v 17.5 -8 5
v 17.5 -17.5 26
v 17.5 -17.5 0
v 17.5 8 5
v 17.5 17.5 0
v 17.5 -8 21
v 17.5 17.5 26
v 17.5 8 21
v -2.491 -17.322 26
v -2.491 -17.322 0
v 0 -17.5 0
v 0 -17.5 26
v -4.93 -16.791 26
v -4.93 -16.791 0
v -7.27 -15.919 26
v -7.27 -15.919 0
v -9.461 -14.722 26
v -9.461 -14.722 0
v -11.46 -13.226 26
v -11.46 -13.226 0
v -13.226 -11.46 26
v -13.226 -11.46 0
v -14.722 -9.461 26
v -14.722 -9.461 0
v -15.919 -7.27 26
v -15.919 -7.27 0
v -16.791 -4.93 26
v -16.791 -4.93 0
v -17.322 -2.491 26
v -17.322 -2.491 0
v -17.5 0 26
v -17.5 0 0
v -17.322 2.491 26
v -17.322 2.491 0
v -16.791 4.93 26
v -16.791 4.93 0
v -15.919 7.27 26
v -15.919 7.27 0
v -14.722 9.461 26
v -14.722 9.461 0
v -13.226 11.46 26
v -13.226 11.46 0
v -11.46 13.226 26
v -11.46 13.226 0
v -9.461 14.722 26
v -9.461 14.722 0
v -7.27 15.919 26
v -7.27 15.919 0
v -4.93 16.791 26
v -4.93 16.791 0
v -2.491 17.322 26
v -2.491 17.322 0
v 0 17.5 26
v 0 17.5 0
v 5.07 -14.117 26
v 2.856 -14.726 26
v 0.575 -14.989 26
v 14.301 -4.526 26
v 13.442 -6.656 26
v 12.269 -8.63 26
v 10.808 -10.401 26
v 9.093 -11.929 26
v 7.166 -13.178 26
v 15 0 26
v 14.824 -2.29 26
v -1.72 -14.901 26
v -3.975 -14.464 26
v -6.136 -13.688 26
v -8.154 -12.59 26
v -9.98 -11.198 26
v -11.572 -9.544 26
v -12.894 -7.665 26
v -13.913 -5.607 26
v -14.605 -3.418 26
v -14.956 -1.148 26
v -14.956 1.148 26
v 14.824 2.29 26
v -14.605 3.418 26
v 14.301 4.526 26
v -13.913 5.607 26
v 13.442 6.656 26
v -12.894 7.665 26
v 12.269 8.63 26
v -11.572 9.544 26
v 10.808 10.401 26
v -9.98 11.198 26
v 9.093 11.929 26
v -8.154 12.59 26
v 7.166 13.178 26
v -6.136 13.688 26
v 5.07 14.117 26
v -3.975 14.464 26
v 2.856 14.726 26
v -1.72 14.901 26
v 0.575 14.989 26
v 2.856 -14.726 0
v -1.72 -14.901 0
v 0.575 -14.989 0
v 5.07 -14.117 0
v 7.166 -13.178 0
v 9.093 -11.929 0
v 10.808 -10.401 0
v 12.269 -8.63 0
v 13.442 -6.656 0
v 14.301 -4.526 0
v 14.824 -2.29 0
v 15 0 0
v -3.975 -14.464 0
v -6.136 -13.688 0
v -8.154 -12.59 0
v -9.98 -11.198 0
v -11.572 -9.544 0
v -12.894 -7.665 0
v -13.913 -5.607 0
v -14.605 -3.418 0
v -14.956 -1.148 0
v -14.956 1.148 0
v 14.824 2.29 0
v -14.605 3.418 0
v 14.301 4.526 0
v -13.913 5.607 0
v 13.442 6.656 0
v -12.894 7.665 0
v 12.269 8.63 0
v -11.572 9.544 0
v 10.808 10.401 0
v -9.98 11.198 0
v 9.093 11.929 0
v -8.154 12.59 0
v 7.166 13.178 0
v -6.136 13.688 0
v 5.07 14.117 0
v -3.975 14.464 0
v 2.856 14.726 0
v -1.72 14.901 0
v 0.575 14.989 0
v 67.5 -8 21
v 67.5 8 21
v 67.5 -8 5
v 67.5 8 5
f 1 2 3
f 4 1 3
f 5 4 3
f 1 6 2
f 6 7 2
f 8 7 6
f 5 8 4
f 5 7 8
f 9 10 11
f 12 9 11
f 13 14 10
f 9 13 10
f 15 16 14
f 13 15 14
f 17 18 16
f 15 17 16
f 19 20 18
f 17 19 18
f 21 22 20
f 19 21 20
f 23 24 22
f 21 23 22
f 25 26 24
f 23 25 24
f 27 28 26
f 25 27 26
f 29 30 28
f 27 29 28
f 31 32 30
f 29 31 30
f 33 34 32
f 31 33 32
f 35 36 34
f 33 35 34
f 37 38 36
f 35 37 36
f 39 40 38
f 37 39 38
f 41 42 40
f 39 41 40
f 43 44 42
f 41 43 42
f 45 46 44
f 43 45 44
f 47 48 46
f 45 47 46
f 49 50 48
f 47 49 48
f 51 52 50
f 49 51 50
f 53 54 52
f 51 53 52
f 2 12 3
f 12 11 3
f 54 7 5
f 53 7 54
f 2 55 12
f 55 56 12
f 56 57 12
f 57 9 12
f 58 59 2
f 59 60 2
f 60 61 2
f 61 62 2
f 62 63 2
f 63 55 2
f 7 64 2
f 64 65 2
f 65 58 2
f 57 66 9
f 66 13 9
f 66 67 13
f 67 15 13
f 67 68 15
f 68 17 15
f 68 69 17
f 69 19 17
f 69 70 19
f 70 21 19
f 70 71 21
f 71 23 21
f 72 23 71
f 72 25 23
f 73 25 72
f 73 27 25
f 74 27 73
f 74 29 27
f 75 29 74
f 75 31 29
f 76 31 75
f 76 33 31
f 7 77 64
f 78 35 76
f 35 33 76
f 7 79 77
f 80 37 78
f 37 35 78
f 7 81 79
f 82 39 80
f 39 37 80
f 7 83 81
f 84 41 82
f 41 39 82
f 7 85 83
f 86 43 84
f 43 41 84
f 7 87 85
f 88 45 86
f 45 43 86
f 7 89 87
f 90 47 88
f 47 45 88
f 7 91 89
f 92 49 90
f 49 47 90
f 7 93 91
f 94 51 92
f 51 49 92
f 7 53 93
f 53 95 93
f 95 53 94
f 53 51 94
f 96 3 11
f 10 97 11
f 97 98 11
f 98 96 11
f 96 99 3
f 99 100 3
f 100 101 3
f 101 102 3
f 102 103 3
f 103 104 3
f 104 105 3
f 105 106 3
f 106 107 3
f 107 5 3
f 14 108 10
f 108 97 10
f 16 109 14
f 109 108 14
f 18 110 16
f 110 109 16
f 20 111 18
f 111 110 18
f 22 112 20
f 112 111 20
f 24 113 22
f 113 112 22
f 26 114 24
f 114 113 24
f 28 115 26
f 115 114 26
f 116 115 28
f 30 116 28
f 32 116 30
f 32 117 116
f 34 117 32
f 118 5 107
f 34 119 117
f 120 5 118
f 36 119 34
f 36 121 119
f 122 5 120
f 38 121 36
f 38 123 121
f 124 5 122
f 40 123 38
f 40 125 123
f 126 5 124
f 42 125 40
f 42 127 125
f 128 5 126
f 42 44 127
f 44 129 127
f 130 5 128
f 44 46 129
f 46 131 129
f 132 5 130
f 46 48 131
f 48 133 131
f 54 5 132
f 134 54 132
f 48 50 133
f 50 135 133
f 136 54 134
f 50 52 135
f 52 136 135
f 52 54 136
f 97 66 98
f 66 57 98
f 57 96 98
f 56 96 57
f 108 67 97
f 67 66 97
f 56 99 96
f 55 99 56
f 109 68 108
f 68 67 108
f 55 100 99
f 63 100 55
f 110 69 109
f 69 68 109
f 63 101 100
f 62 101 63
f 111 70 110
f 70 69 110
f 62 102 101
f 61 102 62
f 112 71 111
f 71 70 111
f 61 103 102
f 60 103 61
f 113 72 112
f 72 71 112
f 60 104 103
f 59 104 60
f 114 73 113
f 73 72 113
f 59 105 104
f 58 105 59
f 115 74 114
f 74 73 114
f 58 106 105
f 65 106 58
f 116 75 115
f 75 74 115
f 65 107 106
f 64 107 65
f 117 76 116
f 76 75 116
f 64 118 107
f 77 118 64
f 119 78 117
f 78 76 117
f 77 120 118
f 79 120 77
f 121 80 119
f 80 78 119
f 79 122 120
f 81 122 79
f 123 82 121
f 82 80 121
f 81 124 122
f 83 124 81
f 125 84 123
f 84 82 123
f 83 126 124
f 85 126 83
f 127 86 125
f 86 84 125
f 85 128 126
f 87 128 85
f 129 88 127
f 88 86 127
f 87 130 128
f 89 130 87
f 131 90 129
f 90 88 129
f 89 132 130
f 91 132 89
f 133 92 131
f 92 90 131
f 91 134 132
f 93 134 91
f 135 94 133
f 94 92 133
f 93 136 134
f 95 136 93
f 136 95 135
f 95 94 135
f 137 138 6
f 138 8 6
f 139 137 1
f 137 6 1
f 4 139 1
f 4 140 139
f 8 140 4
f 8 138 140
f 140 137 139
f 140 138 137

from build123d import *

# Parameters (mm, degrees)
EXTRUDE_1_DEPTH     = 26
SKETCH_2_R          = 15
CUT_EXTRUDE_1_DEPTH = 26
SKETCH_3_W          = 16
SKETCH_3_H          = 16
EXTRUDE_2_DEPTH     = 50


with BuildPart() as part:
    # 草图1 → 凸台-拉伸1 (new body)
    with BuildSketch(Plane.XY):
        with BuildLine():
            Line((0, 17.5), (17.5, 17.5))
            Line((17.5, 17.5), (17.5, -17.5))
            Line((17.5, -17.5), (0, -17.5))
            ThreePointArc((0, -17.5), (-17.5, 0), (0, 17.5))
        make_face()
    extrude(amount=EXTRUDE_1_DEPTH)

    # 草图2 → 切除-拉伸1 (cut)
    with BuildSketch(Plane.XY.offset(26)):
        Circle(SKETCH_2_R)
    extrude(amount=-CUT_EXTRUDE_1_DEPTH, mode=Mode.SUBTRACT)

    # 草图3 → 凸台-拉伸2 (add)
    with BuildSketch(Plane(origin=(17.5, 0, 0), x_dir=(0, 0, -1), z_dir=(1, 0, 0))):
        with Locations((-13, 0)):
            Rectangle(SKETCH_3_W, SKETCH_3_H)
    extrude(amount=EXTRUDE_2_DEPTH)


solid = part.part
